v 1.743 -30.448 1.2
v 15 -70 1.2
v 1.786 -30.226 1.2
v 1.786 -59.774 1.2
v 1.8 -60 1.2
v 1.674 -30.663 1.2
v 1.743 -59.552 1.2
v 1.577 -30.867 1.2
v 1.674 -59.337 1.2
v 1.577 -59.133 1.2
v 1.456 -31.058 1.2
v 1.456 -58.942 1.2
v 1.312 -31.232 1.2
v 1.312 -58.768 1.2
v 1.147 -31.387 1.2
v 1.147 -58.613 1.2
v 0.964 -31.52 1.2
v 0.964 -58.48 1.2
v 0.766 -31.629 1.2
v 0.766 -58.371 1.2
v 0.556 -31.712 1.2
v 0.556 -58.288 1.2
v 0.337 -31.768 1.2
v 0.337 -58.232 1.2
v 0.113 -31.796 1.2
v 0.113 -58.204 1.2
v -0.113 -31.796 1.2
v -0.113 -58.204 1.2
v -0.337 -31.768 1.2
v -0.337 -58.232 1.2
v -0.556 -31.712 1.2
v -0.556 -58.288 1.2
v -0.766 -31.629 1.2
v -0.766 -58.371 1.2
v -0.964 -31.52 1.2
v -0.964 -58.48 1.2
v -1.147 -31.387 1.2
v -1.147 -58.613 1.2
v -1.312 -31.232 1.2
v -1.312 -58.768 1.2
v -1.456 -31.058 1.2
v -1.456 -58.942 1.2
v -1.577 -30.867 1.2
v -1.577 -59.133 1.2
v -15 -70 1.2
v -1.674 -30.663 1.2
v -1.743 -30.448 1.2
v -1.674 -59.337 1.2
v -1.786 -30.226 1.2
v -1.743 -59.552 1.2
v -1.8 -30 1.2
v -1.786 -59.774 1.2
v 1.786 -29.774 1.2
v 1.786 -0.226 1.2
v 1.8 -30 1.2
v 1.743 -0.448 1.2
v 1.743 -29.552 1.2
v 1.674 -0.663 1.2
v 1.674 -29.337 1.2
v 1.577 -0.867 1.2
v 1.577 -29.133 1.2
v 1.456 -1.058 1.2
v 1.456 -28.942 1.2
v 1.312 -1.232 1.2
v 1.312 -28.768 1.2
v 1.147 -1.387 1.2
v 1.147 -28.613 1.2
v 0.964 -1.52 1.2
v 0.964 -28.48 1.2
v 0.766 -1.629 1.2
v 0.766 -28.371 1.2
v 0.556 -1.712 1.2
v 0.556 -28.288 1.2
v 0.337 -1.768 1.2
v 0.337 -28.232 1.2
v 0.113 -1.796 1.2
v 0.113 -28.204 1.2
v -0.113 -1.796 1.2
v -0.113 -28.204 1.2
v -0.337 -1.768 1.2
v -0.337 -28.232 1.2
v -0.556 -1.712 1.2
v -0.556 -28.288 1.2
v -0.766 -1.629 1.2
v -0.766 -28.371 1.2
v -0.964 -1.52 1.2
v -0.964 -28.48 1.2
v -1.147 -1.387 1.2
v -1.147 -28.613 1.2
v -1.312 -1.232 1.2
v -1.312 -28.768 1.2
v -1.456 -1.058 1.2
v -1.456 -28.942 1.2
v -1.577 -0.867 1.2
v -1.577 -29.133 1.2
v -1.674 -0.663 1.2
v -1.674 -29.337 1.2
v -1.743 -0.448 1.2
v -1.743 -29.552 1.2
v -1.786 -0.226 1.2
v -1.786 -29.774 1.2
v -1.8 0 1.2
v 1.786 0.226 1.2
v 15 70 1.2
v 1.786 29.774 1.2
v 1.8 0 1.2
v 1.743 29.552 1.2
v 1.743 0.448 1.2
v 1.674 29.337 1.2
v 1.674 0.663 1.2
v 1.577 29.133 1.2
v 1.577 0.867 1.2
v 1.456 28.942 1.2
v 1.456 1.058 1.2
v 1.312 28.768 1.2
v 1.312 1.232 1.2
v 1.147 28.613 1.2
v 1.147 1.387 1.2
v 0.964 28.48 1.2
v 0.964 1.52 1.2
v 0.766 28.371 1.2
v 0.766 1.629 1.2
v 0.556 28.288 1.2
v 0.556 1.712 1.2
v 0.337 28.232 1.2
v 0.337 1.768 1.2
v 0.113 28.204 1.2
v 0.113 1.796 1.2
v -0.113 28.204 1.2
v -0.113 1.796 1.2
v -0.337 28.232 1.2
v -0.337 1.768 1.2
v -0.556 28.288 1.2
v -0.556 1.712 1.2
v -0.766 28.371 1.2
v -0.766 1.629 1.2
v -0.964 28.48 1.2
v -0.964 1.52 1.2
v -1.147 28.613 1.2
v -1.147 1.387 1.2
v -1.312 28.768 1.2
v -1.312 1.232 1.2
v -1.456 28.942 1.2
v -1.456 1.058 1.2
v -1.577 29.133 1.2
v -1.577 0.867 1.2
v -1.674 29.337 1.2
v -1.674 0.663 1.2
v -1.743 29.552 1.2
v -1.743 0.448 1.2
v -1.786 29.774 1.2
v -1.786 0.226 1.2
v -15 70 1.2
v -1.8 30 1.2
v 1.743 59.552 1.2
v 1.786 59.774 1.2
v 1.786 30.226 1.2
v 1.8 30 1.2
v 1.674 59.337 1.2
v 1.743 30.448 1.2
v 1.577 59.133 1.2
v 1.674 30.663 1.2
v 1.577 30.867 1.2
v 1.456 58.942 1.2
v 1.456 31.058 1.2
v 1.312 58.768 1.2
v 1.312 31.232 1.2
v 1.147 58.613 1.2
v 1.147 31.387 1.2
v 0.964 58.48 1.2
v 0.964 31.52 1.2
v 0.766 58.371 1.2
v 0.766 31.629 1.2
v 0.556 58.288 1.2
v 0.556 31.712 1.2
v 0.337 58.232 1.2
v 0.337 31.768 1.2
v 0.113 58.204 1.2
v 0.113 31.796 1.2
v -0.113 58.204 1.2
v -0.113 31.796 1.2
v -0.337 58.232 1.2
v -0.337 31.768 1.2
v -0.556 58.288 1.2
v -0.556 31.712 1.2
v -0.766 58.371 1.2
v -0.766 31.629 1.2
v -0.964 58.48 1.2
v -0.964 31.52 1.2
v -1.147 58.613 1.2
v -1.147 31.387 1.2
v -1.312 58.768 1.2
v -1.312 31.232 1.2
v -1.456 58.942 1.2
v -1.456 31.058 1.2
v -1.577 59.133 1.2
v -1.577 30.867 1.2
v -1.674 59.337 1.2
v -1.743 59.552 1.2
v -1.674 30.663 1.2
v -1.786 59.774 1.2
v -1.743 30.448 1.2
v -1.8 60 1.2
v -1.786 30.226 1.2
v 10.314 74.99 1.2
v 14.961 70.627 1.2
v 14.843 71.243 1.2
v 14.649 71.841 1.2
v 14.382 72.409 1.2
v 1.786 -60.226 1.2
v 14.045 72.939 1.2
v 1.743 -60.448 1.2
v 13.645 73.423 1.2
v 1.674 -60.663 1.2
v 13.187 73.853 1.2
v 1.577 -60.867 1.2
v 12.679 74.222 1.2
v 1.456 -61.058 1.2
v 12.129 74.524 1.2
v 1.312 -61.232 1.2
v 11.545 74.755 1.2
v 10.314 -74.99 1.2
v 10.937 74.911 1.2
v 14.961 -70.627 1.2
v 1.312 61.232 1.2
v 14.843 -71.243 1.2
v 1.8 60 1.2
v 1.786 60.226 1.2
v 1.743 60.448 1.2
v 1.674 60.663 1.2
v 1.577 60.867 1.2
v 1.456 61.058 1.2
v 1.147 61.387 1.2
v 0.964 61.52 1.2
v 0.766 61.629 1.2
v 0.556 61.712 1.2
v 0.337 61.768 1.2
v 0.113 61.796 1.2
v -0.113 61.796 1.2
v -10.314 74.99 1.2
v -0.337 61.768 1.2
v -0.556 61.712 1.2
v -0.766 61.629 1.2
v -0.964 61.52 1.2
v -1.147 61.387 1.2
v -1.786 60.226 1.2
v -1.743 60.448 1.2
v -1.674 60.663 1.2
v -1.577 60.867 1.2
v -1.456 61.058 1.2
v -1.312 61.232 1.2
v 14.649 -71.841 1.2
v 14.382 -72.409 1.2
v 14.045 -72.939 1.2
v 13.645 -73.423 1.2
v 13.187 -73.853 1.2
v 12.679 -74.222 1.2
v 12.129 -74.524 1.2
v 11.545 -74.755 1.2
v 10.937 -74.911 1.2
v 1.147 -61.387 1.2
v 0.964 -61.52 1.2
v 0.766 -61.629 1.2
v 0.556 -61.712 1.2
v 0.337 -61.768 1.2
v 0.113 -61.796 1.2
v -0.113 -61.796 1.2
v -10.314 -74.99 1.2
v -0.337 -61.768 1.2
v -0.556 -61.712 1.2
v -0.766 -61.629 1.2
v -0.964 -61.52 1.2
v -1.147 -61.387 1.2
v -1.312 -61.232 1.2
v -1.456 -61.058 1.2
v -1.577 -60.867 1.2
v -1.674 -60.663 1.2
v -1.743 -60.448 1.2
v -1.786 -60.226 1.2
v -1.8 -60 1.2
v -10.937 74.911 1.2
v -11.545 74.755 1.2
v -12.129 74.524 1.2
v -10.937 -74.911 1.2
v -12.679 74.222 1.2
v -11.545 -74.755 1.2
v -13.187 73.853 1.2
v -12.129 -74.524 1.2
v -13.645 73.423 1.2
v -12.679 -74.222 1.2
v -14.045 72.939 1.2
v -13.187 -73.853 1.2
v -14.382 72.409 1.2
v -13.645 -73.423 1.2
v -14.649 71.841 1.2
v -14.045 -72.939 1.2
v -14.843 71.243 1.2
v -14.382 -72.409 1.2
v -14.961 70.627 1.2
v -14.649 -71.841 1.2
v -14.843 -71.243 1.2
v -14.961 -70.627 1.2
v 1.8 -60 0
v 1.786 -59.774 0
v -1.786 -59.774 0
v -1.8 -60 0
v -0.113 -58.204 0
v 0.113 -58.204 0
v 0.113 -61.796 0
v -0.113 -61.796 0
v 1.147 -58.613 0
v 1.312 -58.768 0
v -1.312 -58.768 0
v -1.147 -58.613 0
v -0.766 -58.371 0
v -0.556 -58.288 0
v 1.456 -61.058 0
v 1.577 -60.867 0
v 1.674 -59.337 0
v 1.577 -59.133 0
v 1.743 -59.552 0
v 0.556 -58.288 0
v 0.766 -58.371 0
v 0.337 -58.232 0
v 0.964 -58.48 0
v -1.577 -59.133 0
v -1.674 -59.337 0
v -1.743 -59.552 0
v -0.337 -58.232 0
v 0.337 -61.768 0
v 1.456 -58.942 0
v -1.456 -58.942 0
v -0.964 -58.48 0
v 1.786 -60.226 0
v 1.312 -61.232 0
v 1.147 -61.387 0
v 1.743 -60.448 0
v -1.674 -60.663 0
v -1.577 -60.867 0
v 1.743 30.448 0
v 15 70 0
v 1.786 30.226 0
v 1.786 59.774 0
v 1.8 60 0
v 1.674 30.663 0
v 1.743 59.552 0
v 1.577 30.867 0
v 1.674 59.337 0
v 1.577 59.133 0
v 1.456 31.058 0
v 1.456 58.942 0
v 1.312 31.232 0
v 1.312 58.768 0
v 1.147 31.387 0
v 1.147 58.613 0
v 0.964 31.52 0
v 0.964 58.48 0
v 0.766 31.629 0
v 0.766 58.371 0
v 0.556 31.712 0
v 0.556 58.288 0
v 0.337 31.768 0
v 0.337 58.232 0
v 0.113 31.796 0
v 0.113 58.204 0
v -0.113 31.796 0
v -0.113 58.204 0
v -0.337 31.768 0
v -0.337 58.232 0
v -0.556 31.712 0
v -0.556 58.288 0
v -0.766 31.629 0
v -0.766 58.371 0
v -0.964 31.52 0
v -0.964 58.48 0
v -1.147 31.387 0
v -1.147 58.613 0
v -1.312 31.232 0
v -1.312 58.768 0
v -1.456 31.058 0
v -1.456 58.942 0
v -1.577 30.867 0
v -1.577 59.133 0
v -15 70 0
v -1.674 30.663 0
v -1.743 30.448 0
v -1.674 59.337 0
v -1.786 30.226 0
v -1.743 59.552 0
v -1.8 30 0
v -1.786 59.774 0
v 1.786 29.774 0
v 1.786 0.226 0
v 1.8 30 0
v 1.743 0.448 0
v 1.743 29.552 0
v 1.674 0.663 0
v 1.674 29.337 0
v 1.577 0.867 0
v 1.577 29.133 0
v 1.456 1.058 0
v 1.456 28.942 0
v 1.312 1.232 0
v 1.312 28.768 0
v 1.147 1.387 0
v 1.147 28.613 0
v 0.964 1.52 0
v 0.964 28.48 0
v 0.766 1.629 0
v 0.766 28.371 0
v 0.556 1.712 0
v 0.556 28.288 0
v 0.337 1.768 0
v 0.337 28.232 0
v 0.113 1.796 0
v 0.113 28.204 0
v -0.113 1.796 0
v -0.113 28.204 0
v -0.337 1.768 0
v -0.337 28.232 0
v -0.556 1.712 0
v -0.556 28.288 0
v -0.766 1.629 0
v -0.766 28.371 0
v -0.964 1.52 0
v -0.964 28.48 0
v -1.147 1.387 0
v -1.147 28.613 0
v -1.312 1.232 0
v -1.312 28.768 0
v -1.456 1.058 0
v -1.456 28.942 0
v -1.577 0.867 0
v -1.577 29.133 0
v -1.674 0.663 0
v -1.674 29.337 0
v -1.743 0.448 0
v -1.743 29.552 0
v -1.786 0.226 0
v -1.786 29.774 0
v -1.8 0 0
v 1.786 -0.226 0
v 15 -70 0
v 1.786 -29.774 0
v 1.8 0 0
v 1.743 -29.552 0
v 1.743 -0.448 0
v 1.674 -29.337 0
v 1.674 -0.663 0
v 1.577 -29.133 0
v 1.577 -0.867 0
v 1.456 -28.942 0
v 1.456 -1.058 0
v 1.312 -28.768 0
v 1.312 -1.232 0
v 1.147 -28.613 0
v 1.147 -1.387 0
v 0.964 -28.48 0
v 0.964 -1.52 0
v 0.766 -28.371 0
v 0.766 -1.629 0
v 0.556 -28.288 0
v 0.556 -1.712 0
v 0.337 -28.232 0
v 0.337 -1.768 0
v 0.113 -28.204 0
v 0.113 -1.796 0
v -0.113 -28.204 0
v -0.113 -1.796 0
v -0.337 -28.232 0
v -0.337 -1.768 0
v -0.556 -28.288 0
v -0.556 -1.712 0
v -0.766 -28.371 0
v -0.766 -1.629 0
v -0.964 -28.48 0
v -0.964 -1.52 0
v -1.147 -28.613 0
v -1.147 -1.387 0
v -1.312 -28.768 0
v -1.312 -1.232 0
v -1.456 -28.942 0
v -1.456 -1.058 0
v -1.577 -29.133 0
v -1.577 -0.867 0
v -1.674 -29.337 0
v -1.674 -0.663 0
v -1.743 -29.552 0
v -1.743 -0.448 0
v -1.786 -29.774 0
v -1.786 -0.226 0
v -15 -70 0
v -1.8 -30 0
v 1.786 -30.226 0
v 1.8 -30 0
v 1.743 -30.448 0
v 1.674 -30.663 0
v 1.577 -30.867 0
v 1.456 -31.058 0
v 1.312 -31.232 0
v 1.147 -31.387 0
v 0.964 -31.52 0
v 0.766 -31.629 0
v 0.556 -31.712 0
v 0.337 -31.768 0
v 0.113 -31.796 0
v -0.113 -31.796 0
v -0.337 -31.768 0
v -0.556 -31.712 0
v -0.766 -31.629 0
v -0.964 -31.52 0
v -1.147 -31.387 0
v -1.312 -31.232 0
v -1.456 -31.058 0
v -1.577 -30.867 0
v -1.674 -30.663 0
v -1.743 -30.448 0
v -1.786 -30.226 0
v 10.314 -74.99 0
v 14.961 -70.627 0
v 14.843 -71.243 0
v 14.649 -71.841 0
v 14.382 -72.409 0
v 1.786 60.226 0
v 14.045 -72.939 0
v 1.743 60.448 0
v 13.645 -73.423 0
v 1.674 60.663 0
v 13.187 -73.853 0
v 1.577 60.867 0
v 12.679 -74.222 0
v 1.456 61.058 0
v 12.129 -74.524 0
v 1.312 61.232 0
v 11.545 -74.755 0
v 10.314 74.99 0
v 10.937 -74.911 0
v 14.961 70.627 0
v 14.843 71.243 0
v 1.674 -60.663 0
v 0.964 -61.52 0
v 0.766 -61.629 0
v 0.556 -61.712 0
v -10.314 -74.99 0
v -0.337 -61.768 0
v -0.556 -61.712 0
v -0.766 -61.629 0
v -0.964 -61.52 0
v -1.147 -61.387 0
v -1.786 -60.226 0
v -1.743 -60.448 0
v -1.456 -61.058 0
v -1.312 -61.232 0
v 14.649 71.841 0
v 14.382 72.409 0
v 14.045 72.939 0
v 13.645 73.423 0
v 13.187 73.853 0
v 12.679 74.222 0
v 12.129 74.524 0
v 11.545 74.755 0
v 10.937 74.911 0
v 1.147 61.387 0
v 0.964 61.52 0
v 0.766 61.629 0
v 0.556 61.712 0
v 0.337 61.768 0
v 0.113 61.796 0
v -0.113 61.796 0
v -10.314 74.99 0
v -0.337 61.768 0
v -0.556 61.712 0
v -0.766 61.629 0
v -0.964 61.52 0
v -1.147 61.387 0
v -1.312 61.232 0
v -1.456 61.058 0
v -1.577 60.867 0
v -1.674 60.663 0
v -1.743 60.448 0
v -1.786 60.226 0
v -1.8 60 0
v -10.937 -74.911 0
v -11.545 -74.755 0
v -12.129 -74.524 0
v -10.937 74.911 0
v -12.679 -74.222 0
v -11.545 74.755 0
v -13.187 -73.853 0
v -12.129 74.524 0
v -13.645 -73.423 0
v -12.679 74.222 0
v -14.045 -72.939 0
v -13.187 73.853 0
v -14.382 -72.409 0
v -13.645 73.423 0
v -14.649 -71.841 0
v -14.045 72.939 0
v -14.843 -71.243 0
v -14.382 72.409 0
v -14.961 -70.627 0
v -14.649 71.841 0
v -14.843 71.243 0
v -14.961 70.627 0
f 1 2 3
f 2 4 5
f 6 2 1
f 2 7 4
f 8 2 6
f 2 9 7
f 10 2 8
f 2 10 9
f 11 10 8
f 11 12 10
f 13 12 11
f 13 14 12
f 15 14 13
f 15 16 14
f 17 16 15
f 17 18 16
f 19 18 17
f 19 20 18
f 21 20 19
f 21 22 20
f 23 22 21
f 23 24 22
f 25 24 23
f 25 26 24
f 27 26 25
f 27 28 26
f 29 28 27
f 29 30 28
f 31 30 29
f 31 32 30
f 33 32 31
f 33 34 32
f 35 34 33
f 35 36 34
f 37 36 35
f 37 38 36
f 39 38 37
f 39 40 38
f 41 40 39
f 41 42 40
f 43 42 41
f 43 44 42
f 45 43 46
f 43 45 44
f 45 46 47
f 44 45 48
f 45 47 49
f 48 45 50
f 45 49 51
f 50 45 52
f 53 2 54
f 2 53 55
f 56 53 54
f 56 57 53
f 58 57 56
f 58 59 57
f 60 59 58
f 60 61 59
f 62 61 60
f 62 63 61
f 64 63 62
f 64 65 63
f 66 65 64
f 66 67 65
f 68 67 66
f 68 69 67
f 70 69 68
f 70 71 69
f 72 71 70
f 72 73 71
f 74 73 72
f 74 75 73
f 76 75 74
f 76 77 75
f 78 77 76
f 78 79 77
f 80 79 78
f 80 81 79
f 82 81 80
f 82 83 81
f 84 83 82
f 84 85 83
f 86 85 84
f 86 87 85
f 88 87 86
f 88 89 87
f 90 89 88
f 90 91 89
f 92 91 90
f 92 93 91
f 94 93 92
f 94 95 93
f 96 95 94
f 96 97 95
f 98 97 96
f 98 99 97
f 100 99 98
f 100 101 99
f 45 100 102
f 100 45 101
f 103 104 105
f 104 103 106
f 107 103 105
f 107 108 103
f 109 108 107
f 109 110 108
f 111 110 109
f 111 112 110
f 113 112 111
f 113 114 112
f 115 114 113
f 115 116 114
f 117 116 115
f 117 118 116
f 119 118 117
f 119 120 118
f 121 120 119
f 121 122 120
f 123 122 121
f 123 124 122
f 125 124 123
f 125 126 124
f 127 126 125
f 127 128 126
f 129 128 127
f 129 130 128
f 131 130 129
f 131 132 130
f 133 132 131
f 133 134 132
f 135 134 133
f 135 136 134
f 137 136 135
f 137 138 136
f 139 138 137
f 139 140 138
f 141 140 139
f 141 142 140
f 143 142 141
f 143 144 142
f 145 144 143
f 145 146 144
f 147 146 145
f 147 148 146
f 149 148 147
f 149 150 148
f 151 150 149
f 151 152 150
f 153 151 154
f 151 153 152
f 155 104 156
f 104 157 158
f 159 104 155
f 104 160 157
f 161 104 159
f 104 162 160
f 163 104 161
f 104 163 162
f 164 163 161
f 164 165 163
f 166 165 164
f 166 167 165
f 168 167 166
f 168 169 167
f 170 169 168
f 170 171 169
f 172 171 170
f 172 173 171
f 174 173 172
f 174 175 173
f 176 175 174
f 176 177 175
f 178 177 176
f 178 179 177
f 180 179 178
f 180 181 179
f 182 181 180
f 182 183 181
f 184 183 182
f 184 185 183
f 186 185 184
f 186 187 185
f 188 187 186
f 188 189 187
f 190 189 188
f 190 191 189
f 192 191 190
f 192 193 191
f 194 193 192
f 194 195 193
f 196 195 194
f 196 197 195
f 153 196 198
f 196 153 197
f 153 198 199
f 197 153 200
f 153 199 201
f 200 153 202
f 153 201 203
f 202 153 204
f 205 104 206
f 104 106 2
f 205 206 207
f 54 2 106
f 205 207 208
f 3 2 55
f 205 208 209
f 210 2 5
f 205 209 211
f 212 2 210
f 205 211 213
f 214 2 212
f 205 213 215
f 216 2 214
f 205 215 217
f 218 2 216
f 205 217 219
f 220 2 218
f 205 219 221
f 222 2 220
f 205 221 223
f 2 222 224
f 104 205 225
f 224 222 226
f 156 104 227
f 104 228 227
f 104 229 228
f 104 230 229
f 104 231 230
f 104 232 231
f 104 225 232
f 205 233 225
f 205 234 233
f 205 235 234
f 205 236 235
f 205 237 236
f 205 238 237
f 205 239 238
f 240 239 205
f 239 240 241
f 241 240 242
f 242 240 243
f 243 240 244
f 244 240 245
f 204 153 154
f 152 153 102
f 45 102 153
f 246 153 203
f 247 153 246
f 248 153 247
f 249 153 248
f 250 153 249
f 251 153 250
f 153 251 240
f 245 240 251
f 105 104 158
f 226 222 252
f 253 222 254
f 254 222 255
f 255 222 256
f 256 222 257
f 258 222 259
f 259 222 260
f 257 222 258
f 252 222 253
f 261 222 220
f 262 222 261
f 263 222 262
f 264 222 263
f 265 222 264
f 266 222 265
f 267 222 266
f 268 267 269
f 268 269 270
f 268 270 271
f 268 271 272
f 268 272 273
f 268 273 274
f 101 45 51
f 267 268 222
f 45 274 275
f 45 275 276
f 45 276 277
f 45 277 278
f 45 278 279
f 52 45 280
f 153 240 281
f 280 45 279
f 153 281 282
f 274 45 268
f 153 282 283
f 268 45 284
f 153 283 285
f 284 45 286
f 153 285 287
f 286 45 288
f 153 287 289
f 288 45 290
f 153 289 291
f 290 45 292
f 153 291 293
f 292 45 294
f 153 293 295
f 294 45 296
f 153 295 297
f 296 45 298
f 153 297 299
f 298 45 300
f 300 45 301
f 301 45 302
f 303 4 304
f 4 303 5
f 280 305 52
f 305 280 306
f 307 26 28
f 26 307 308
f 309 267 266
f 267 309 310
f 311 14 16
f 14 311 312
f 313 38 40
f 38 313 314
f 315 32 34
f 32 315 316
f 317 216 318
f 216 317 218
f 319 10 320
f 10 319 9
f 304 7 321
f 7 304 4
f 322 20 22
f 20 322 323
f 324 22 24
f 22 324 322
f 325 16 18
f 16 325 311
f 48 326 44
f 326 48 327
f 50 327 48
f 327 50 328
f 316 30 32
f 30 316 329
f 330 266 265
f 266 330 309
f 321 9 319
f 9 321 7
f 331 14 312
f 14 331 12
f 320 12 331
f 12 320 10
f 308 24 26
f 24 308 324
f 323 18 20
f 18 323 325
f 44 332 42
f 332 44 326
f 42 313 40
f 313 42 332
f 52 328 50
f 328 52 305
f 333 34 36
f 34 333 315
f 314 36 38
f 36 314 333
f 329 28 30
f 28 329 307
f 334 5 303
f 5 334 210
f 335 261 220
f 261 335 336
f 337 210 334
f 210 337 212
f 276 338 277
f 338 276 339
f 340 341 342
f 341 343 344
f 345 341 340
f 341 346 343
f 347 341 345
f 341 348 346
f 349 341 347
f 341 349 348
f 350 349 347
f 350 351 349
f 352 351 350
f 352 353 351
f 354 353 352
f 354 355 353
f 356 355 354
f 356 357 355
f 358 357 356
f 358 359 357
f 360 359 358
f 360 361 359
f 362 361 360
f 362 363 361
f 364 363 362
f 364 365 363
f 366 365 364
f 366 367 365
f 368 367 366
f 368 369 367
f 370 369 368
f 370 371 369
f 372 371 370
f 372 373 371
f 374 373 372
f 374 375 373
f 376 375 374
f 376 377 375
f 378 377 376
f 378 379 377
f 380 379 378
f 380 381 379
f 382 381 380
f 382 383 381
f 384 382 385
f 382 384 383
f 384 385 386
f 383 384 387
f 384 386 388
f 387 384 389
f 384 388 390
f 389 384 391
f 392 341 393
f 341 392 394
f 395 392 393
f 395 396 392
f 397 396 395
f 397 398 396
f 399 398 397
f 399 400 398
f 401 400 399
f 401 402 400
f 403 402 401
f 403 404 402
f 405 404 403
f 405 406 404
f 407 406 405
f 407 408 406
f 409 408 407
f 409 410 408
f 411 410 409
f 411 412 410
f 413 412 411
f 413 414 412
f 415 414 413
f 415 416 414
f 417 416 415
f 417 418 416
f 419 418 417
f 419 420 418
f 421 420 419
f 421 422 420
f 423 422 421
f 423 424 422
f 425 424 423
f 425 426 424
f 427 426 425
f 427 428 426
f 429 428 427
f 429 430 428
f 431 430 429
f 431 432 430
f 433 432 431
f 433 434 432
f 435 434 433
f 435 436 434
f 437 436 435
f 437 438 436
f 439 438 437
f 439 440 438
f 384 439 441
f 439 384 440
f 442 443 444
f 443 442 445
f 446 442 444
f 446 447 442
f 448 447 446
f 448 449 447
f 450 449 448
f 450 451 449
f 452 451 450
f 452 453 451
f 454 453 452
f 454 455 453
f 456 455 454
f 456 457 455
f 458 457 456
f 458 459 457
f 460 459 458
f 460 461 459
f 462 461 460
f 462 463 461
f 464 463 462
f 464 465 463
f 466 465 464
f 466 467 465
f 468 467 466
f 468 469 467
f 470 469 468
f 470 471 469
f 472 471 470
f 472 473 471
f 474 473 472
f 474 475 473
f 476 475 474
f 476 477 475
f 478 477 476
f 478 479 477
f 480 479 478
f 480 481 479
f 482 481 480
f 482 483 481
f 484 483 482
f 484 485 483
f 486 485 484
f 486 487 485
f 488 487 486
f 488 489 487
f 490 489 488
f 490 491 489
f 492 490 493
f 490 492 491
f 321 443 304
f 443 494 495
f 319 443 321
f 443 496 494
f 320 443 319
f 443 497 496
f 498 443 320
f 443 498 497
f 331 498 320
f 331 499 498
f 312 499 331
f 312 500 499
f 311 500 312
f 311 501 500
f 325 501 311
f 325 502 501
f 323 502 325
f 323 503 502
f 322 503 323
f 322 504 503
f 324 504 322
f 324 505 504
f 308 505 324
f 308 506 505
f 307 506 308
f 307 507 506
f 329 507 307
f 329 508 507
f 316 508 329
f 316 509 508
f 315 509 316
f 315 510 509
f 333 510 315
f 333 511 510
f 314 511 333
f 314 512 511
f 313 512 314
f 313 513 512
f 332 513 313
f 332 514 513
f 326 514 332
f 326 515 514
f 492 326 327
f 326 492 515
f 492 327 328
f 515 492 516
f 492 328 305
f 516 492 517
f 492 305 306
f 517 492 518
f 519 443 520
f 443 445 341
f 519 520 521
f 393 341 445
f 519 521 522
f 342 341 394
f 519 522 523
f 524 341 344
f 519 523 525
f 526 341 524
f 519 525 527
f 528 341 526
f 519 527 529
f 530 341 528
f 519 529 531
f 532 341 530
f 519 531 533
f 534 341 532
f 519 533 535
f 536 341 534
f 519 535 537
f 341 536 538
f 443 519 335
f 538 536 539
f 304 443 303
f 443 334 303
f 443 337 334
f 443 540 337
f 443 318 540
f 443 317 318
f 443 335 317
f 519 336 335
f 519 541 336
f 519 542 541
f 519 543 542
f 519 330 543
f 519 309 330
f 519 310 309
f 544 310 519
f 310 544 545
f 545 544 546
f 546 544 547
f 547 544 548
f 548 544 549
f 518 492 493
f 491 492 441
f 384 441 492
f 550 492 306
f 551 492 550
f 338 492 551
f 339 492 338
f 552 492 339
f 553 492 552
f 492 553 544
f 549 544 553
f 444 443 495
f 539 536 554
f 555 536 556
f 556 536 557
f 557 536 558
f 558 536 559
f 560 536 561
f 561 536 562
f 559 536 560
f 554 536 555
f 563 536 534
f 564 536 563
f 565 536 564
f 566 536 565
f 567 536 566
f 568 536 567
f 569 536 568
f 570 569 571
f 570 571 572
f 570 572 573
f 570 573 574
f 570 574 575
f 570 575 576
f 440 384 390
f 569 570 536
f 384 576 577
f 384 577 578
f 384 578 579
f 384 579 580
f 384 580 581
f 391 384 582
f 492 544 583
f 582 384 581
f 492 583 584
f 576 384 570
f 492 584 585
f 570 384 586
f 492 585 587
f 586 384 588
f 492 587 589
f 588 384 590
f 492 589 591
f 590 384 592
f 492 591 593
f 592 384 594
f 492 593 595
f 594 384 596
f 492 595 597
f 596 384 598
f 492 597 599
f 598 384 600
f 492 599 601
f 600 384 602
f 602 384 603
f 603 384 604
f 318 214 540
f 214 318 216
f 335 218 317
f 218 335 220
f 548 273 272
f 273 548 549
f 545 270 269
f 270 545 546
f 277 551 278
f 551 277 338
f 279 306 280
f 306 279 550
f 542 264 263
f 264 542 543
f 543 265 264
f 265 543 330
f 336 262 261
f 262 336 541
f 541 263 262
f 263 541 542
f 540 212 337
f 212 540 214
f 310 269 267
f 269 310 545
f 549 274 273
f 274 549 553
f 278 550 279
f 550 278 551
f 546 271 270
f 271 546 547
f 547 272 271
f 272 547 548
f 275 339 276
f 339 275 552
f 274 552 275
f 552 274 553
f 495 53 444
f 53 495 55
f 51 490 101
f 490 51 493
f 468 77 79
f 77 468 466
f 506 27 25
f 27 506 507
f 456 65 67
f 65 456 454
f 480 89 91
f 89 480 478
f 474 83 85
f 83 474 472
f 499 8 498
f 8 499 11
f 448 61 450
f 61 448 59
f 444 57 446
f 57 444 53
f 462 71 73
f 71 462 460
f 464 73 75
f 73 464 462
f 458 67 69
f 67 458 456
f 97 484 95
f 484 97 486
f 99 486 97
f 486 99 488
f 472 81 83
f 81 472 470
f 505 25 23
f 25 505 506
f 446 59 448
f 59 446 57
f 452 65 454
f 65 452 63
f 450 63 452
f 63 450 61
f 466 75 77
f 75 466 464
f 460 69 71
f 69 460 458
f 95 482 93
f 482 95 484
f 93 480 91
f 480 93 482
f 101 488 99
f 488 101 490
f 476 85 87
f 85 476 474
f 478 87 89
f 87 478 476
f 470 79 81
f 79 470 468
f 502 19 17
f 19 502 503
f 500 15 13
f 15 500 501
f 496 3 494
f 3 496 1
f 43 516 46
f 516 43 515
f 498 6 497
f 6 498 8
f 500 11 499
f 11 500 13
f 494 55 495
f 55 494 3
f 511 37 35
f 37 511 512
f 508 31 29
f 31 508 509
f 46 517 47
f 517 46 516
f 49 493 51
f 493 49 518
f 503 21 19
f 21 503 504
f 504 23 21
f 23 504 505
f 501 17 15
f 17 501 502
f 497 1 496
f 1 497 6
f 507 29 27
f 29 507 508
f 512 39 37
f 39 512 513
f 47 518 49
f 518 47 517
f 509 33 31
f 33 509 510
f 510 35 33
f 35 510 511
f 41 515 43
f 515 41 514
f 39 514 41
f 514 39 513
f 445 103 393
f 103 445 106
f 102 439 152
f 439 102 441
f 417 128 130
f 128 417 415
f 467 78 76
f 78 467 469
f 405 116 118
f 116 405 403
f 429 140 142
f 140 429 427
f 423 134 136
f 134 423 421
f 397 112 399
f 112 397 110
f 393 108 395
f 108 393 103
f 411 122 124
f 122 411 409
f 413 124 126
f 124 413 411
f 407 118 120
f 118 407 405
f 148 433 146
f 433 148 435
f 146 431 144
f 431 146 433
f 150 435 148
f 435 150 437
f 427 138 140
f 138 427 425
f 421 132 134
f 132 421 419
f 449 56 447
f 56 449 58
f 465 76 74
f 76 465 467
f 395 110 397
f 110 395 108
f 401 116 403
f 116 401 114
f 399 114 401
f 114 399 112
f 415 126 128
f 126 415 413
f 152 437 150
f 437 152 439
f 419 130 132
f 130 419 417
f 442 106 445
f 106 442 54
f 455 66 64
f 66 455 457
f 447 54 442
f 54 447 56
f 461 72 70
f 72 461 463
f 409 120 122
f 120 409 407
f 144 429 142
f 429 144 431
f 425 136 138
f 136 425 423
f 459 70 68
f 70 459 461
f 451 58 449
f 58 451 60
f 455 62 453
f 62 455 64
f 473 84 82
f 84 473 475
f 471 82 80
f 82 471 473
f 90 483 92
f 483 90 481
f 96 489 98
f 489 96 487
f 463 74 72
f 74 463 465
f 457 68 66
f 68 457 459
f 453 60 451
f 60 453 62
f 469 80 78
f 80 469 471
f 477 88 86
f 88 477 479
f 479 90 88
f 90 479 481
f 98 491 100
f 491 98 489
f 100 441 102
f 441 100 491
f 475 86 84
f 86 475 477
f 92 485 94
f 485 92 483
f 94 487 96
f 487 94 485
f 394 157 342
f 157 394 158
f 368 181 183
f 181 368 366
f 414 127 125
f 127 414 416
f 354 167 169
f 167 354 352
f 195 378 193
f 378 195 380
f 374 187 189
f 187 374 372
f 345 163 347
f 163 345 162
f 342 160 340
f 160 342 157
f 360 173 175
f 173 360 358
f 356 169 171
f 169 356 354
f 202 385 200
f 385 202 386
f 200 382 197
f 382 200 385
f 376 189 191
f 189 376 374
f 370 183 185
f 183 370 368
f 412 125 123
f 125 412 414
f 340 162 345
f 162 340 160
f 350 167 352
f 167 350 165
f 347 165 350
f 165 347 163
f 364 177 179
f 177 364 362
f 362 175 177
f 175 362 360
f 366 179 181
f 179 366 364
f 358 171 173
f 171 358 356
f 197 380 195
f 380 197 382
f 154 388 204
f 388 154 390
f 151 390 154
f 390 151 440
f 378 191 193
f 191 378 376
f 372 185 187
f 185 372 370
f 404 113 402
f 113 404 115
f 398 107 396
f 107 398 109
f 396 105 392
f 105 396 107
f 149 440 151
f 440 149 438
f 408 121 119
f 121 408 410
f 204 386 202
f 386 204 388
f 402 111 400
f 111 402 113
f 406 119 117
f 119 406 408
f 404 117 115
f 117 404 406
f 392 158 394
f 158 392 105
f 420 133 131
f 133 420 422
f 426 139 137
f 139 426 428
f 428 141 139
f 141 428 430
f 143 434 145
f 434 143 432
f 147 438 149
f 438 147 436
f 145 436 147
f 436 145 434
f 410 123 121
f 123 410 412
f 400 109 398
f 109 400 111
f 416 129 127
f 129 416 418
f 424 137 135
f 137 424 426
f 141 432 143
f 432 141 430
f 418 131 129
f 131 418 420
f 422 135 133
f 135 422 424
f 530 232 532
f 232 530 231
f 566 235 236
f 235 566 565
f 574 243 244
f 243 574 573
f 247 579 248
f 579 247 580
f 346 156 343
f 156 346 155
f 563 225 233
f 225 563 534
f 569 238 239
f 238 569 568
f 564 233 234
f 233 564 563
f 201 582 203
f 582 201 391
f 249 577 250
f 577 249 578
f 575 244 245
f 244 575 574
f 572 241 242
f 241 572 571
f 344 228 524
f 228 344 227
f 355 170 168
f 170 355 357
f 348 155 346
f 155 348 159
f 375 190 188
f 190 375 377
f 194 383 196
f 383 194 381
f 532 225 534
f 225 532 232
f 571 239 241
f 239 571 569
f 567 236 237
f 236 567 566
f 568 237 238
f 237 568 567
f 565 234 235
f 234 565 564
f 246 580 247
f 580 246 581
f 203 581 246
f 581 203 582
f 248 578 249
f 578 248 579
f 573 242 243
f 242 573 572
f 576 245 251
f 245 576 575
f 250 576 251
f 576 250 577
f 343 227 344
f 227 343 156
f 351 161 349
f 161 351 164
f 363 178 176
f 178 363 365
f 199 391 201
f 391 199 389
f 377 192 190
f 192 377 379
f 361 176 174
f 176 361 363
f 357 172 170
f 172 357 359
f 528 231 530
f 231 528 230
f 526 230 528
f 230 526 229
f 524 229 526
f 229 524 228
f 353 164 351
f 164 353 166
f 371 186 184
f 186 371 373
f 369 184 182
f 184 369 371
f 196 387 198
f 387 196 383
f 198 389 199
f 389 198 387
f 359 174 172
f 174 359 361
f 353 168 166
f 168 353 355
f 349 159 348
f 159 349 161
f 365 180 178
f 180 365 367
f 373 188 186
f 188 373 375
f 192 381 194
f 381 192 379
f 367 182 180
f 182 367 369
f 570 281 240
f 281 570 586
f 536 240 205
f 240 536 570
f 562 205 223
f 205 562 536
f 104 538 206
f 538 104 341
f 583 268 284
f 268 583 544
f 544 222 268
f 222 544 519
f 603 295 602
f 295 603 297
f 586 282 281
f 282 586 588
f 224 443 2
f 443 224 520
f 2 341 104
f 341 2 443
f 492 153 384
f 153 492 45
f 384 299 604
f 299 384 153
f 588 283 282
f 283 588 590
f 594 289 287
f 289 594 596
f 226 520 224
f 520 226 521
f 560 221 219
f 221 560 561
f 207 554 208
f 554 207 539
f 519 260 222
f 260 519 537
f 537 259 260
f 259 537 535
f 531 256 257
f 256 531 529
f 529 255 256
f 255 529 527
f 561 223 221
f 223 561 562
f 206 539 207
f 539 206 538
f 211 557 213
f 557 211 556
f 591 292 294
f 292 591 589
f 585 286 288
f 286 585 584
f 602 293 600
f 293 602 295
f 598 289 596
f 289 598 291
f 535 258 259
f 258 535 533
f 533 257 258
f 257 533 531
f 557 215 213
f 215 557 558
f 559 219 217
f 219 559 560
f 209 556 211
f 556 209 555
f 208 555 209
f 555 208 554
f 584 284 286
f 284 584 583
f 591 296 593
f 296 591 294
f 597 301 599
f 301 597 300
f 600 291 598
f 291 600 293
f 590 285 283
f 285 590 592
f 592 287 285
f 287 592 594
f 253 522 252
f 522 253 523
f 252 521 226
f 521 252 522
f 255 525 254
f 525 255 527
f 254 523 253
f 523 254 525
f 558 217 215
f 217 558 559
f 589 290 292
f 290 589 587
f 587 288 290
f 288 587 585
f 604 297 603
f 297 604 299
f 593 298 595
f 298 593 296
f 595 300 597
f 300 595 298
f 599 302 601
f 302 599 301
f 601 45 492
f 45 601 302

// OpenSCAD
$fn = 50;


difference() {
	union() {
		hull() {
			translate(v = [-10.0000000000, 70.0000000000, 0]) {
				cylinder(h = 24, r = 5);
			}
			translate(v = [10.0000000000, 70.0000000000, 0]) {
				cylinder(h = 24, r = 5);
			}
			translate(v = [-10.0000000000, -70.0000000000, 0]) {
				cylinder(h = 24, r = 5);
			}
			translate(v = [10.0000000000, -70.0000000000, 0]) {
				cylinder(h = 24, r = 5);
			}
		}
	}
	union() {
		translate(v = [0, 0, 1.2000000000]) {
			hull() {
				translate(v = [-10.0000000000, 70.0000000000, 0]) {
					cylinder(h = 22.8000000000, r = 3.8000000000);
				}
				translate(v = [10.0000000000, 70.0000000000, 0]) {
					cylinder(h = 22.8000000000, r = 3.8000000000);
				}
				translate(v = [-10.0000000000, -70.0000000000, 0]) {
					cylinder(h = 22.8000000000, r = 3.8000000000);
				}
				translate(v = [10.0000000000, -70.0000000000, 0]) {
					cylinder(h = 22.8000000000, r = 3.8000000000);
				}
			}
		}
		#translate(v = [0.0000000000, -60.0000000000, 0]) {
			cylinder(h = 1.2000000000, r = 1.8000000000);
		}
		#translate(v = [0.0000000000, -30.0000000000, 0]) {
			cylinder(h = 1.2000000000, r = 1.8000000000);
		}
		#cylinder(h = 1.2000000000, r = 1.8000000000);
		#translate(v = [0.0000000000, 30.0000000000, 0]) {
			cylinder(h = 1.2000000000, r = 1.8000000000);
		}
		#translate(v = [0.0000000000, 60.0000000000, 0]) {
			cylinder(h = 1.2000000000, r = 1.8000000000);
		}
		translate(v = [-250.0000000000, -250.0000000000, 1.2000000000]) {
			cube(size = [500, 500, 500]);
		}
		translate(v = [-250.0000000000, -250.0000000000, 1.2000000000]) {
			cube(size = [500, 500, 500]);
		}
		translate(v = [-250.0000000000, -250.0000000000, 1.2000000000]) {
			cube(size = [500, 500, 500]);
		}
	}
}
